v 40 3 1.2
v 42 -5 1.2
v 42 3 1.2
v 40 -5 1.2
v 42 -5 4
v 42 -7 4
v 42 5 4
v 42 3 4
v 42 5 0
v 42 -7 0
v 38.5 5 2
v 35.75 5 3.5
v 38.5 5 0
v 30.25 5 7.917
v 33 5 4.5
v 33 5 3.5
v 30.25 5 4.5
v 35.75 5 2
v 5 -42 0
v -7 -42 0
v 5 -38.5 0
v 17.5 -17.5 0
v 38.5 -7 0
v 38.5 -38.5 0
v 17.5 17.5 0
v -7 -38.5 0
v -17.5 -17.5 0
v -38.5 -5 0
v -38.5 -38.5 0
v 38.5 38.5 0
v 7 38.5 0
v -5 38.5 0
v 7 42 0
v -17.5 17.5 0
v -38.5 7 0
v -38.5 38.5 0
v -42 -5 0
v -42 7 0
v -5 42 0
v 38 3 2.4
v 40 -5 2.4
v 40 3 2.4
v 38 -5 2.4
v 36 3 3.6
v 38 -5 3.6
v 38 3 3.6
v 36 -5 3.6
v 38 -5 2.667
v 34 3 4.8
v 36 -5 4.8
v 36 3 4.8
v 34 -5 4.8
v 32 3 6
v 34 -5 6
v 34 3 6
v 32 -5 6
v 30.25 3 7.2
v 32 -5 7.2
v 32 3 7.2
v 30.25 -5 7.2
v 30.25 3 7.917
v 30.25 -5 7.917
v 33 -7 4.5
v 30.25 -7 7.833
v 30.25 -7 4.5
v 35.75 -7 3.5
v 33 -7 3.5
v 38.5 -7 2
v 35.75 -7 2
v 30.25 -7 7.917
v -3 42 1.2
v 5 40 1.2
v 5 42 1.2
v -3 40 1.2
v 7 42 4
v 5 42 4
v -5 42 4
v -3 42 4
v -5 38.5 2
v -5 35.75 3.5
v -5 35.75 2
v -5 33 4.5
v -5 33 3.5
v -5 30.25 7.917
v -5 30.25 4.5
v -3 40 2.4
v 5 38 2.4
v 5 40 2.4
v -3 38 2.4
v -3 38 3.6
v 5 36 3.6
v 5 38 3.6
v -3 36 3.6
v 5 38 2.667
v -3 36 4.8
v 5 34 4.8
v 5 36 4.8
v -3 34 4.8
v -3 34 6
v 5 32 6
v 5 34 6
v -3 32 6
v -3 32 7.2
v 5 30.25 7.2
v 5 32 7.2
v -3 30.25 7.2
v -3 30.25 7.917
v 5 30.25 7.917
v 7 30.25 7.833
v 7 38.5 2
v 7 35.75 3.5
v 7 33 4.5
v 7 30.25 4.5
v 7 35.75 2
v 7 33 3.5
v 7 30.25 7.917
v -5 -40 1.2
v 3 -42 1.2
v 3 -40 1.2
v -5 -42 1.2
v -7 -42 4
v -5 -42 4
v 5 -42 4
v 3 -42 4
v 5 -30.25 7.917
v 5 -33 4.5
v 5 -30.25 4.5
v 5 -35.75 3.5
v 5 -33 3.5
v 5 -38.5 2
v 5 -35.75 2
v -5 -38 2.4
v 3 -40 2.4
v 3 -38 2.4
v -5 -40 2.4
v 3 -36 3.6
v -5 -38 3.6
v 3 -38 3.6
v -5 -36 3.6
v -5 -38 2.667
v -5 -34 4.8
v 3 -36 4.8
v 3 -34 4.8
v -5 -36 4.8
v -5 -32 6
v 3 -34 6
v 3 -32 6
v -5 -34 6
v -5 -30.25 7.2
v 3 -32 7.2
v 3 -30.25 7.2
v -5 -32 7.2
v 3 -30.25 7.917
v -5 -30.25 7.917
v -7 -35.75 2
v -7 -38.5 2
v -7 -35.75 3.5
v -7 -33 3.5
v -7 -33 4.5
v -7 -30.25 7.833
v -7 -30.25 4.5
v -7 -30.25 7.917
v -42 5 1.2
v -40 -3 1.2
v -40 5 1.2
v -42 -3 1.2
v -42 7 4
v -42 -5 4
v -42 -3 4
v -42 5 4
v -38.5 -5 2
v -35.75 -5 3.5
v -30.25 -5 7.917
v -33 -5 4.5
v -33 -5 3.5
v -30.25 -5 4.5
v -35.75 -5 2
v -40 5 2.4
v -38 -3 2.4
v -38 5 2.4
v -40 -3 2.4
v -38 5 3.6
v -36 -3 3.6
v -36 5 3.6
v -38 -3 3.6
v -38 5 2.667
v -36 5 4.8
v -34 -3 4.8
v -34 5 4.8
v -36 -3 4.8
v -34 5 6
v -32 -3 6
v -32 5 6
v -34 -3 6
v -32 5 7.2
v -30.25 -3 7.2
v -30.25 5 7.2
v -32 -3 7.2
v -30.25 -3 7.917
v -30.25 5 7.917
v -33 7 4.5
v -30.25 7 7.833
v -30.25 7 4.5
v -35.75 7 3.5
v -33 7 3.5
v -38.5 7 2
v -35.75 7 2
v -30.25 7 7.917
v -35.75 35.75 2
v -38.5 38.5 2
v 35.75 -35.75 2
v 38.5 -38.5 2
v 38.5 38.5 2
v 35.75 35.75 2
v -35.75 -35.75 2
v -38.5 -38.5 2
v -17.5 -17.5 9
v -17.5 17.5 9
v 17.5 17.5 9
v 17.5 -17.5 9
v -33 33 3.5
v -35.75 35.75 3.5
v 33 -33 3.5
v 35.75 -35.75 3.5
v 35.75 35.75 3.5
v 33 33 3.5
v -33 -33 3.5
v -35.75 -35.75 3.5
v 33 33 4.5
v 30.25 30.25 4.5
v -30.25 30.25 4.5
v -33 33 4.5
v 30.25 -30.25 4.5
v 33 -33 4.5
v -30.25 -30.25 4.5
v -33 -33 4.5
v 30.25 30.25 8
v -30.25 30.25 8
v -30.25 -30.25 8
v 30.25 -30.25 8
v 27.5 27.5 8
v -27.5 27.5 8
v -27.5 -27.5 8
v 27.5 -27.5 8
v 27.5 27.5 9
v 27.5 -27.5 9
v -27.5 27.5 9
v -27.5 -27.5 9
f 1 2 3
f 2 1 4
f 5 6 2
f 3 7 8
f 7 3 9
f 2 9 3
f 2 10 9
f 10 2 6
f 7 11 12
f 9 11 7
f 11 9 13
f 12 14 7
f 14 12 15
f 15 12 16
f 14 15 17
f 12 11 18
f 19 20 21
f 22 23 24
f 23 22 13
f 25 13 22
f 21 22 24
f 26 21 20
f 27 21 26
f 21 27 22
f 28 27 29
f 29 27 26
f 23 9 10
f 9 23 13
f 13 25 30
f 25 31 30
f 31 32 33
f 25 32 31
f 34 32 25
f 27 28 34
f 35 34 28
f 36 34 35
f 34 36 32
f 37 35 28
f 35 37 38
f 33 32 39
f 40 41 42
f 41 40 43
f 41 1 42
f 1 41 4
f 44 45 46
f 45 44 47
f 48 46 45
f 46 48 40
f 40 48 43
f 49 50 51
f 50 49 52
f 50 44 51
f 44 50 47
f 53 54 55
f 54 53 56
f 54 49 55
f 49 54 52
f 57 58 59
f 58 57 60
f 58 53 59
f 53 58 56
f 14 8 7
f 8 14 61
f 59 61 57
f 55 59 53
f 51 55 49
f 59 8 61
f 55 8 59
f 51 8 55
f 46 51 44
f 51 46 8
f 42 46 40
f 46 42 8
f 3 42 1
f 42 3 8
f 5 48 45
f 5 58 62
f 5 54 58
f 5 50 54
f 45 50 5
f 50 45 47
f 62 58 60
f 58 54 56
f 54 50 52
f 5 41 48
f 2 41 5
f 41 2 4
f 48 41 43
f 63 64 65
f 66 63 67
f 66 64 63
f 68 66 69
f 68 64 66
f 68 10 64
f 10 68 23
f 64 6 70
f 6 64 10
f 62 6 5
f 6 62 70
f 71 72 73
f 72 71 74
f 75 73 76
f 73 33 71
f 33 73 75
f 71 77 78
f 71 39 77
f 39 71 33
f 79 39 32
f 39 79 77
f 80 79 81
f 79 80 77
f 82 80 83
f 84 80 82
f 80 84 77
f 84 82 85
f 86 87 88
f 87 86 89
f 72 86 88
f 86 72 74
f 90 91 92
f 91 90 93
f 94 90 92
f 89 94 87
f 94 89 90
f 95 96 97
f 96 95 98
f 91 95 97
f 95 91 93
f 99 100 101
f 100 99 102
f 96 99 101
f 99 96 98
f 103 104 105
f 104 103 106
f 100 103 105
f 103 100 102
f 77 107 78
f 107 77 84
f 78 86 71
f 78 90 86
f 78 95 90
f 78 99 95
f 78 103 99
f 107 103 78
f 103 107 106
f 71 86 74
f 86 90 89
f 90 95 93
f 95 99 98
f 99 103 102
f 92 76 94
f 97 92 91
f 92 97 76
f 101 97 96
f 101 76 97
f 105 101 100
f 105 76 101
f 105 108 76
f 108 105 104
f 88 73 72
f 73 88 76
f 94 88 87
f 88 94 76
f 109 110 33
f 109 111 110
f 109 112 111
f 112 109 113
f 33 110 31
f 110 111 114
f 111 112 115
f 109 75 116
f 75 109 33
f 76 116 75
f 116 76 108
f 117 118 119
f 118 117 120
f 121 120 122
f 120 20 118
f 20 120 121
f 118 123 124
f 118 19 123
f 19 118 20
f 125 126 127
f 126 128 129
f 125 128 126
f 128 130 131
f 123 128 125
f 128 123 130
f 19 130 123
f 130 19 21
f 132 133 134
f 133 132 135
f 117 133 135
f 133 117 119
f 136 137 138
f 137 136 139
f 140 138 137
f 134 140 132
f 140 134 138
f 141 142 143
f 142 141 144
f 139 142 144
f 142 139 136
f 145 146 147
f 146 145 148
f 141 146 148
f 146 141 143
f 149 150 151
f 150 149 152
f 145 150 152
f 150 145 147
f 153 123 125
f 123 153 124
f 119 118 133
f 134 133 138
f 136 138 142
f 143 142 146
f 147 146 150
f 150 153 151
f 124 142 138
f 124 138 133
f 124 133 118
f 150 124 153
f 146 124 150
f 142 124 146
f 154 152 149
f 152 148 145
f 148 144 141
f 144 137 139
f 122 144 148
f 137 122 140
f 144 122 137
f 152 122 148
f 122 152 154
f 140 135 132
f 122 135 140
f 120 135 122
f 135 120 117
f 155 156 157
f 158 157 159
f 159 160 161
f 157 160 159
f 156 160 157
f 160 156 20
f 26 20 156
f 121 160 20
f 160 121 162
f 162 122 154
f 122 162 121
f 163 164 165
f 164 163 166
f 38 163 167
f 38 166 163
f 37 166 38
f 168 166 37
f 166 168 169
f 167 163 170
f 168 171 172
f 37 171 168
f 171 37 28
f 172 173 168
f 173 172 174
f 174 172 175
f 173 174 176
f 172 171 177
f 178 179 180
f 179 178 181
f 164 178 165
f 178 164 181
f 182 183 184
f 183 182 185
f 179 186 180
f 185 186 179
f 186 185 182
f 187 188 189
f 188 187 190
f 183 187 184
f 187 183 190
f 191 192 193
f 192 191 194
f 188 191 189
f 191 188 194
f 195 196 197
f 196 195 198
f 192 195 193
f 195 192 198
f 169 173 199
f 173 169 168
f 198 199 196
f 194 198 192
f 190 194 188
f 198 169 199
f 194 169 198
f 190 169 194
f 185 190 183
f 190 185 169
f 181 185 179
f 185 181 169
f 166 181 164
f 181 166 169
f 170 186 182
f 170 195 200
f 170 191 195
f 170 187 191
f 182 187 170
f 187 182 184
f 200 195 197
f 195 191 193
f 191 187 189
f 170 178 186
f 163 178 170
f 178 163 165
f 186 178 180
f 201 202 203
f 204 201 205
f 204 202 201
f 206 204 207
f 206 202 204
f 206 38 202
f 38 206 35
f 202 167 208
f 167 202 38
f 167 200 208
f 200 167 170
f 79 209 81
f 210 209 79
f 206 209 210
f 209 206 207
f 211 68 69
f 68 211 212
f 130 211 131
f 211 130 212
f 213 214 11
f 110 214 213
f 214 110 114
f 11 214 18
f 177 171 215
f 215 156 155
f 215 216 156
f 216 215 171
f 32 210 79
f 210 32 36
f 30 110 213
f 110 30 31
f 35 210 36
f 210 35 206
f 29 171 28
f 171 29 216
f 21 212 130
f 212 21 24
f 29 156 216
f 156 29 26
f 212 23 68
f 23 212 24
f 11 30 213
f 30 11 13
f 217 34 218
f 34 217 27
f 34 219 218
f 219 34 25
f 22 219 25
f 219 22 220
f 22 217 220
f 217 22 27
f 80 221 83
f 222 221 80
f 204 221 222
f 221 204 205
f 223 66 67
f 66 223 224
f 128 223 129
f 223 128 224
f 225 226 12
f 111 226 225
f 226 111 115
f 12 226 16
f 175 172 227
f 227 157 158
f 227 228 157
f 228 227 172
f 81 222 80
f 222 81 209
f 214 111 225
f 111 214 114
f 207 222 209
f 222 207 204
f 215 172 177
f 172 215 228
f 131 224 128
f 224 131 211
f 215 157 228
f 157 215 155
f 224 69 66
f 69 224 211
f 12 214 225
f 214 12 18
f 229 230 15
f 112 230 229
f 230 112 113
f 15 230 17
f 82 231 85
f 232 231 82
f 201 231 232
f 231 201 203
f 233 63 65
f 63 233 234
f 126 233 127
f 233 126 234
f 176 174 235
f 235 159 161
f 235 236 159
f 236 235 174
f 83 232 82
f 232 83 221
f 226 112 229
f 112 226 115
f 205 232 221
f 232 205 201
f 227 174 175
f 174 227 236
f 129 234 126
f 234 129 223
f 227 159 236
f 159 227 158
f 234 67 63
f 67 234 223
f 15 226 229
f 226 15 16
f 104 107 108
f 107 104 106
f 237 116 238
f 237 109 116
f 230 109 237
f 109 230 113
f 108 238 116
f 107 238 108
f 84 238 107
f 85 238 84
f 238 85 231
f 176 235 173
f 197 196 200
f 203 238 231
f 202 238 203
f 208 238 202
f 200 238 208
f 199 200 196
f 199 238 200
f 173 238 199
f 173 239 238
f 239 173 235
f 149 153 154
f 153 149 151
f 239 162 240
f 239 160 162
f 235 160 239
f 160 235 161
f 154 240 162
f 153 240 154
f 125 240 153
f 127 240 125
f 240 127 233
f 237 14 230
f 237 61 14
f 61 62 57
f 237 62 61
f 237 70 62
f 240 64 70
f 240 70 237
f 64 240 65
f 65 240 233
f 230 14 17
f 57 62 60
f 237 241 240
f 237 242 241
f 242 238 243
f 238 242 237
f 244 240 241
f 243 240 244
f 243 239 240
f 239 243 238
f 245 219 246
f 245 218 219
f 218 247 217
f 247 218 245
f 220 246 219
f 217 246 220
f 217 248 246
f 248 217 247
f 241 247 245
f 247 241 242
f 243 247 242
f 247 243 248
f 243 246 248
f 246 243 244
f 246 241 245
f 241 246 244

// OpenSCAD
// file: ../basicFunctions/staircase.scad
//Creates a staircase
/*
stair_side_profile = [ [0,0],[12,0],[12,4],[0,8] ];

stair_width = 10;
num_stairs = 6;
stair_step_height = 1;
stair_step_width = 2;

staircase( stair_side_profile, stair_width, num_stairs, stair_step_height, stair_step_width );
*/

module staircase( stair_side_profile, stair_width, num_stairs, stair_step_height, stair_step_width )
{

    translate([0,stair_width/2,0])
    rotate([90,0,0])
    linear_extrude(height=2)
    polygon(stair_side_profile);

    translate([0,-stair_width/2,0])
    rotate([90,0,0])
    linear_extrude(height=2)
    polygon(stair_side_profile);

    for( i= [1:num_stairs])
    {
        translate([0,-stair_width/2,(i-1)*stair_step_height])
        cube(size=[(num_stairs-i+1)*stair_step_width,stair_width,stair_step_height]);
    }

}
// file: ../basicFunctions/jangha.scad
function cumulative_height(height_array,index) = ( index < 0 ) ? 0 : height_array[index] + cumulative_height(height_array,index-1) ;

//Actually this is just the same thing as pitha
module jangha(temple_profile,temple_mid_profile, temple_center_offset,height_array, size_array, diagonal_array)
{
    //Inputs:
    //temple profile - set of points to form a polygon for the profile
    //temple mid profile - Middle of the profile, to be left out (hollow)
    //temple center offset - x,y offset array for centering
    //height array - height of each section from bottom to top
    //Size array - scaling for each section
    //Diagonal array - specifies if we should have diagonal angle from previous section or not
    
    
    for(i=[0:len(height_array)-1])
    {
        if(diagonal_array[i]==0)
        {
            section_profile = temple_profile*size_array[i];
            section_center_offset = temple_center_offset*size_array[i];
                    
            translate([0,0,cumulative_height(height_array,i-1)])
            linear_extrude(height = height_array[i])
            difference(){
                translate(section_center_offset)
                polygon(points=section_profile);
                
                translate(temple_center_offset)
                polygon(points=temple_mid_profile);
            }
        }
        else{
            section_profile = temple_profile*size_array[i-1];
            section_center_offset = temple_center_offset*size_array[i-1];
            section_scale = size_array[i]/size_array[i-1];
                
            translate([0,0,cumulative_height(height_array,i-1)])
            linear_extrude(height = height_array[i],scale = section_scale)
            difference(){
                translate(section_center_offset)
                polygon(points=section_profile);
                
                translate(temple_center_offset)
                polygon(points=temple_mid_profile);
            }
        }
        
    }
}
// file: ../basicFunctions/pitha.scad
function cumulative_height(height_array,index) = ( index < 0 ) ? 0 : height_array[index] + cumulative_height(height_array,index-1) ;

module pitha(temple_profile,temple_mid_profile, temple_center_offset,height_array, size_array, diagonal_array)
{
    //Inputs:
    //temple profile - set of points to form a polygon for the profile
    //temple mid profile - Middle of the profile, to be left out (hollow)
    //temple center offset - x,y offset array for centering
    //height array - height of each section from bottom to top
    //Size array - scaling for each section
    //Diagonal array - specifies if we should have diagonal angle from previous section or not
    //Cylinder array - specifies if we should have cylindrical edge for that section - not used
    
    
    for(i=[0:len(height_array)-1])
    {
        if(diagonal_array[i]==0)
        {
            section_profile = temple_profile*size_array[i];
            section_center_offset = temple_center_offset*size_array[i];
                    
            translate([0,0,cumulative_height(height_array,i-1)])
            linear_extrude(height = height_array[i])
            difference(){
                translate(section_center_offset)
                polygon(points=section_profile);
                
                translate(temple_center_offset)
                polygon(points=temple_mid_profile);
            }
        }
        else{
            section_profile = temple_profile*size_array[i-1];
            section_center_offset = temple_center_offset*size_array[i-1];
            section_scale = size_array[i]/size_array[i-1];
                
            translate([0,0,cumulative_height(height_array,i-1)])
            linear_extrude(height = height_array[i],scale = section_scale)
            difference(){
                translate(section_center_offset)
                polygon(points=section_profile);
                
                translate(temple_center_offset)
                polygon(points=temple_mid_profile);
            }
        }
        /*
        if(cylinder_array[i]==1)
        {
            $fn=50;
            minkowski(){
            translate([0,0,cumulative_height(height_array,i-1)+height_array[i]/2])
            linear_extrude(height = 0.1)
            translate(temple_center_offset*size_array[i])
            polygon(points=temple_profile*size_array[i]);  
                
            sphere(r=height_array[i]/2);      
            }
        }*/
        
    }
}
// main file
include<../basicFunctions/pitha.scad>;
include<../basicFunctions/jangha.scad>;
include<../basicFunctions/staircase.scad>;

stair_side_profile = [ [0,0],[12,0],[12,4],[0,8] ];

stair_width = 10;
num_stairs = 6;
stair_step_height = 1.2;
stair_step_width = 2;

translate([30,0,0])
staircase( stair_side_profile, stair_width, num_stairs, stair_step_height, stair_step_width );

translate([0,30,0])
rotate([0,0,90])
staircase( stair_side_profile, stair_width, num_stairs, stair_step_height, stair_step_width );

translate([0,-30,0])
rotate([0,0,-90])
staircase( stair_side_profile, stair_width, num_stairs, stair_step_height, stair_step_width );

translate([-30,0,0])
rotate([0,0,180])
staircase( stair_side_profile, stair_width, num_stairs, stair_step_height, stair_step_width );

square_side = 55/2;
temple_profile = [ [0,0],[0,2*square_side],[2*square_side,2*square_side],[2*square_side,0] ];
temple_mid_profile = [ [10,10],[45,10],[45,45],[10,45] ];
temple_center_offset = [ -square_side,-square_side,0 ];

pitha_height_array = [ 2, 1.5, 1, 2, 1.5, 1];
pitha_size_array = [ 1.4, 1.3, 1.2, 1.1, 1.1, 1.0 ];
pitha_diagonal_array = [ 0, 0, 0, 0, 0, 0]; //1st element must be 0

pitha(temple_profile,temple_mid_profile, temple_center_offset,pitha_height_array, pitha_size_array,pitha_diagonal_array );
